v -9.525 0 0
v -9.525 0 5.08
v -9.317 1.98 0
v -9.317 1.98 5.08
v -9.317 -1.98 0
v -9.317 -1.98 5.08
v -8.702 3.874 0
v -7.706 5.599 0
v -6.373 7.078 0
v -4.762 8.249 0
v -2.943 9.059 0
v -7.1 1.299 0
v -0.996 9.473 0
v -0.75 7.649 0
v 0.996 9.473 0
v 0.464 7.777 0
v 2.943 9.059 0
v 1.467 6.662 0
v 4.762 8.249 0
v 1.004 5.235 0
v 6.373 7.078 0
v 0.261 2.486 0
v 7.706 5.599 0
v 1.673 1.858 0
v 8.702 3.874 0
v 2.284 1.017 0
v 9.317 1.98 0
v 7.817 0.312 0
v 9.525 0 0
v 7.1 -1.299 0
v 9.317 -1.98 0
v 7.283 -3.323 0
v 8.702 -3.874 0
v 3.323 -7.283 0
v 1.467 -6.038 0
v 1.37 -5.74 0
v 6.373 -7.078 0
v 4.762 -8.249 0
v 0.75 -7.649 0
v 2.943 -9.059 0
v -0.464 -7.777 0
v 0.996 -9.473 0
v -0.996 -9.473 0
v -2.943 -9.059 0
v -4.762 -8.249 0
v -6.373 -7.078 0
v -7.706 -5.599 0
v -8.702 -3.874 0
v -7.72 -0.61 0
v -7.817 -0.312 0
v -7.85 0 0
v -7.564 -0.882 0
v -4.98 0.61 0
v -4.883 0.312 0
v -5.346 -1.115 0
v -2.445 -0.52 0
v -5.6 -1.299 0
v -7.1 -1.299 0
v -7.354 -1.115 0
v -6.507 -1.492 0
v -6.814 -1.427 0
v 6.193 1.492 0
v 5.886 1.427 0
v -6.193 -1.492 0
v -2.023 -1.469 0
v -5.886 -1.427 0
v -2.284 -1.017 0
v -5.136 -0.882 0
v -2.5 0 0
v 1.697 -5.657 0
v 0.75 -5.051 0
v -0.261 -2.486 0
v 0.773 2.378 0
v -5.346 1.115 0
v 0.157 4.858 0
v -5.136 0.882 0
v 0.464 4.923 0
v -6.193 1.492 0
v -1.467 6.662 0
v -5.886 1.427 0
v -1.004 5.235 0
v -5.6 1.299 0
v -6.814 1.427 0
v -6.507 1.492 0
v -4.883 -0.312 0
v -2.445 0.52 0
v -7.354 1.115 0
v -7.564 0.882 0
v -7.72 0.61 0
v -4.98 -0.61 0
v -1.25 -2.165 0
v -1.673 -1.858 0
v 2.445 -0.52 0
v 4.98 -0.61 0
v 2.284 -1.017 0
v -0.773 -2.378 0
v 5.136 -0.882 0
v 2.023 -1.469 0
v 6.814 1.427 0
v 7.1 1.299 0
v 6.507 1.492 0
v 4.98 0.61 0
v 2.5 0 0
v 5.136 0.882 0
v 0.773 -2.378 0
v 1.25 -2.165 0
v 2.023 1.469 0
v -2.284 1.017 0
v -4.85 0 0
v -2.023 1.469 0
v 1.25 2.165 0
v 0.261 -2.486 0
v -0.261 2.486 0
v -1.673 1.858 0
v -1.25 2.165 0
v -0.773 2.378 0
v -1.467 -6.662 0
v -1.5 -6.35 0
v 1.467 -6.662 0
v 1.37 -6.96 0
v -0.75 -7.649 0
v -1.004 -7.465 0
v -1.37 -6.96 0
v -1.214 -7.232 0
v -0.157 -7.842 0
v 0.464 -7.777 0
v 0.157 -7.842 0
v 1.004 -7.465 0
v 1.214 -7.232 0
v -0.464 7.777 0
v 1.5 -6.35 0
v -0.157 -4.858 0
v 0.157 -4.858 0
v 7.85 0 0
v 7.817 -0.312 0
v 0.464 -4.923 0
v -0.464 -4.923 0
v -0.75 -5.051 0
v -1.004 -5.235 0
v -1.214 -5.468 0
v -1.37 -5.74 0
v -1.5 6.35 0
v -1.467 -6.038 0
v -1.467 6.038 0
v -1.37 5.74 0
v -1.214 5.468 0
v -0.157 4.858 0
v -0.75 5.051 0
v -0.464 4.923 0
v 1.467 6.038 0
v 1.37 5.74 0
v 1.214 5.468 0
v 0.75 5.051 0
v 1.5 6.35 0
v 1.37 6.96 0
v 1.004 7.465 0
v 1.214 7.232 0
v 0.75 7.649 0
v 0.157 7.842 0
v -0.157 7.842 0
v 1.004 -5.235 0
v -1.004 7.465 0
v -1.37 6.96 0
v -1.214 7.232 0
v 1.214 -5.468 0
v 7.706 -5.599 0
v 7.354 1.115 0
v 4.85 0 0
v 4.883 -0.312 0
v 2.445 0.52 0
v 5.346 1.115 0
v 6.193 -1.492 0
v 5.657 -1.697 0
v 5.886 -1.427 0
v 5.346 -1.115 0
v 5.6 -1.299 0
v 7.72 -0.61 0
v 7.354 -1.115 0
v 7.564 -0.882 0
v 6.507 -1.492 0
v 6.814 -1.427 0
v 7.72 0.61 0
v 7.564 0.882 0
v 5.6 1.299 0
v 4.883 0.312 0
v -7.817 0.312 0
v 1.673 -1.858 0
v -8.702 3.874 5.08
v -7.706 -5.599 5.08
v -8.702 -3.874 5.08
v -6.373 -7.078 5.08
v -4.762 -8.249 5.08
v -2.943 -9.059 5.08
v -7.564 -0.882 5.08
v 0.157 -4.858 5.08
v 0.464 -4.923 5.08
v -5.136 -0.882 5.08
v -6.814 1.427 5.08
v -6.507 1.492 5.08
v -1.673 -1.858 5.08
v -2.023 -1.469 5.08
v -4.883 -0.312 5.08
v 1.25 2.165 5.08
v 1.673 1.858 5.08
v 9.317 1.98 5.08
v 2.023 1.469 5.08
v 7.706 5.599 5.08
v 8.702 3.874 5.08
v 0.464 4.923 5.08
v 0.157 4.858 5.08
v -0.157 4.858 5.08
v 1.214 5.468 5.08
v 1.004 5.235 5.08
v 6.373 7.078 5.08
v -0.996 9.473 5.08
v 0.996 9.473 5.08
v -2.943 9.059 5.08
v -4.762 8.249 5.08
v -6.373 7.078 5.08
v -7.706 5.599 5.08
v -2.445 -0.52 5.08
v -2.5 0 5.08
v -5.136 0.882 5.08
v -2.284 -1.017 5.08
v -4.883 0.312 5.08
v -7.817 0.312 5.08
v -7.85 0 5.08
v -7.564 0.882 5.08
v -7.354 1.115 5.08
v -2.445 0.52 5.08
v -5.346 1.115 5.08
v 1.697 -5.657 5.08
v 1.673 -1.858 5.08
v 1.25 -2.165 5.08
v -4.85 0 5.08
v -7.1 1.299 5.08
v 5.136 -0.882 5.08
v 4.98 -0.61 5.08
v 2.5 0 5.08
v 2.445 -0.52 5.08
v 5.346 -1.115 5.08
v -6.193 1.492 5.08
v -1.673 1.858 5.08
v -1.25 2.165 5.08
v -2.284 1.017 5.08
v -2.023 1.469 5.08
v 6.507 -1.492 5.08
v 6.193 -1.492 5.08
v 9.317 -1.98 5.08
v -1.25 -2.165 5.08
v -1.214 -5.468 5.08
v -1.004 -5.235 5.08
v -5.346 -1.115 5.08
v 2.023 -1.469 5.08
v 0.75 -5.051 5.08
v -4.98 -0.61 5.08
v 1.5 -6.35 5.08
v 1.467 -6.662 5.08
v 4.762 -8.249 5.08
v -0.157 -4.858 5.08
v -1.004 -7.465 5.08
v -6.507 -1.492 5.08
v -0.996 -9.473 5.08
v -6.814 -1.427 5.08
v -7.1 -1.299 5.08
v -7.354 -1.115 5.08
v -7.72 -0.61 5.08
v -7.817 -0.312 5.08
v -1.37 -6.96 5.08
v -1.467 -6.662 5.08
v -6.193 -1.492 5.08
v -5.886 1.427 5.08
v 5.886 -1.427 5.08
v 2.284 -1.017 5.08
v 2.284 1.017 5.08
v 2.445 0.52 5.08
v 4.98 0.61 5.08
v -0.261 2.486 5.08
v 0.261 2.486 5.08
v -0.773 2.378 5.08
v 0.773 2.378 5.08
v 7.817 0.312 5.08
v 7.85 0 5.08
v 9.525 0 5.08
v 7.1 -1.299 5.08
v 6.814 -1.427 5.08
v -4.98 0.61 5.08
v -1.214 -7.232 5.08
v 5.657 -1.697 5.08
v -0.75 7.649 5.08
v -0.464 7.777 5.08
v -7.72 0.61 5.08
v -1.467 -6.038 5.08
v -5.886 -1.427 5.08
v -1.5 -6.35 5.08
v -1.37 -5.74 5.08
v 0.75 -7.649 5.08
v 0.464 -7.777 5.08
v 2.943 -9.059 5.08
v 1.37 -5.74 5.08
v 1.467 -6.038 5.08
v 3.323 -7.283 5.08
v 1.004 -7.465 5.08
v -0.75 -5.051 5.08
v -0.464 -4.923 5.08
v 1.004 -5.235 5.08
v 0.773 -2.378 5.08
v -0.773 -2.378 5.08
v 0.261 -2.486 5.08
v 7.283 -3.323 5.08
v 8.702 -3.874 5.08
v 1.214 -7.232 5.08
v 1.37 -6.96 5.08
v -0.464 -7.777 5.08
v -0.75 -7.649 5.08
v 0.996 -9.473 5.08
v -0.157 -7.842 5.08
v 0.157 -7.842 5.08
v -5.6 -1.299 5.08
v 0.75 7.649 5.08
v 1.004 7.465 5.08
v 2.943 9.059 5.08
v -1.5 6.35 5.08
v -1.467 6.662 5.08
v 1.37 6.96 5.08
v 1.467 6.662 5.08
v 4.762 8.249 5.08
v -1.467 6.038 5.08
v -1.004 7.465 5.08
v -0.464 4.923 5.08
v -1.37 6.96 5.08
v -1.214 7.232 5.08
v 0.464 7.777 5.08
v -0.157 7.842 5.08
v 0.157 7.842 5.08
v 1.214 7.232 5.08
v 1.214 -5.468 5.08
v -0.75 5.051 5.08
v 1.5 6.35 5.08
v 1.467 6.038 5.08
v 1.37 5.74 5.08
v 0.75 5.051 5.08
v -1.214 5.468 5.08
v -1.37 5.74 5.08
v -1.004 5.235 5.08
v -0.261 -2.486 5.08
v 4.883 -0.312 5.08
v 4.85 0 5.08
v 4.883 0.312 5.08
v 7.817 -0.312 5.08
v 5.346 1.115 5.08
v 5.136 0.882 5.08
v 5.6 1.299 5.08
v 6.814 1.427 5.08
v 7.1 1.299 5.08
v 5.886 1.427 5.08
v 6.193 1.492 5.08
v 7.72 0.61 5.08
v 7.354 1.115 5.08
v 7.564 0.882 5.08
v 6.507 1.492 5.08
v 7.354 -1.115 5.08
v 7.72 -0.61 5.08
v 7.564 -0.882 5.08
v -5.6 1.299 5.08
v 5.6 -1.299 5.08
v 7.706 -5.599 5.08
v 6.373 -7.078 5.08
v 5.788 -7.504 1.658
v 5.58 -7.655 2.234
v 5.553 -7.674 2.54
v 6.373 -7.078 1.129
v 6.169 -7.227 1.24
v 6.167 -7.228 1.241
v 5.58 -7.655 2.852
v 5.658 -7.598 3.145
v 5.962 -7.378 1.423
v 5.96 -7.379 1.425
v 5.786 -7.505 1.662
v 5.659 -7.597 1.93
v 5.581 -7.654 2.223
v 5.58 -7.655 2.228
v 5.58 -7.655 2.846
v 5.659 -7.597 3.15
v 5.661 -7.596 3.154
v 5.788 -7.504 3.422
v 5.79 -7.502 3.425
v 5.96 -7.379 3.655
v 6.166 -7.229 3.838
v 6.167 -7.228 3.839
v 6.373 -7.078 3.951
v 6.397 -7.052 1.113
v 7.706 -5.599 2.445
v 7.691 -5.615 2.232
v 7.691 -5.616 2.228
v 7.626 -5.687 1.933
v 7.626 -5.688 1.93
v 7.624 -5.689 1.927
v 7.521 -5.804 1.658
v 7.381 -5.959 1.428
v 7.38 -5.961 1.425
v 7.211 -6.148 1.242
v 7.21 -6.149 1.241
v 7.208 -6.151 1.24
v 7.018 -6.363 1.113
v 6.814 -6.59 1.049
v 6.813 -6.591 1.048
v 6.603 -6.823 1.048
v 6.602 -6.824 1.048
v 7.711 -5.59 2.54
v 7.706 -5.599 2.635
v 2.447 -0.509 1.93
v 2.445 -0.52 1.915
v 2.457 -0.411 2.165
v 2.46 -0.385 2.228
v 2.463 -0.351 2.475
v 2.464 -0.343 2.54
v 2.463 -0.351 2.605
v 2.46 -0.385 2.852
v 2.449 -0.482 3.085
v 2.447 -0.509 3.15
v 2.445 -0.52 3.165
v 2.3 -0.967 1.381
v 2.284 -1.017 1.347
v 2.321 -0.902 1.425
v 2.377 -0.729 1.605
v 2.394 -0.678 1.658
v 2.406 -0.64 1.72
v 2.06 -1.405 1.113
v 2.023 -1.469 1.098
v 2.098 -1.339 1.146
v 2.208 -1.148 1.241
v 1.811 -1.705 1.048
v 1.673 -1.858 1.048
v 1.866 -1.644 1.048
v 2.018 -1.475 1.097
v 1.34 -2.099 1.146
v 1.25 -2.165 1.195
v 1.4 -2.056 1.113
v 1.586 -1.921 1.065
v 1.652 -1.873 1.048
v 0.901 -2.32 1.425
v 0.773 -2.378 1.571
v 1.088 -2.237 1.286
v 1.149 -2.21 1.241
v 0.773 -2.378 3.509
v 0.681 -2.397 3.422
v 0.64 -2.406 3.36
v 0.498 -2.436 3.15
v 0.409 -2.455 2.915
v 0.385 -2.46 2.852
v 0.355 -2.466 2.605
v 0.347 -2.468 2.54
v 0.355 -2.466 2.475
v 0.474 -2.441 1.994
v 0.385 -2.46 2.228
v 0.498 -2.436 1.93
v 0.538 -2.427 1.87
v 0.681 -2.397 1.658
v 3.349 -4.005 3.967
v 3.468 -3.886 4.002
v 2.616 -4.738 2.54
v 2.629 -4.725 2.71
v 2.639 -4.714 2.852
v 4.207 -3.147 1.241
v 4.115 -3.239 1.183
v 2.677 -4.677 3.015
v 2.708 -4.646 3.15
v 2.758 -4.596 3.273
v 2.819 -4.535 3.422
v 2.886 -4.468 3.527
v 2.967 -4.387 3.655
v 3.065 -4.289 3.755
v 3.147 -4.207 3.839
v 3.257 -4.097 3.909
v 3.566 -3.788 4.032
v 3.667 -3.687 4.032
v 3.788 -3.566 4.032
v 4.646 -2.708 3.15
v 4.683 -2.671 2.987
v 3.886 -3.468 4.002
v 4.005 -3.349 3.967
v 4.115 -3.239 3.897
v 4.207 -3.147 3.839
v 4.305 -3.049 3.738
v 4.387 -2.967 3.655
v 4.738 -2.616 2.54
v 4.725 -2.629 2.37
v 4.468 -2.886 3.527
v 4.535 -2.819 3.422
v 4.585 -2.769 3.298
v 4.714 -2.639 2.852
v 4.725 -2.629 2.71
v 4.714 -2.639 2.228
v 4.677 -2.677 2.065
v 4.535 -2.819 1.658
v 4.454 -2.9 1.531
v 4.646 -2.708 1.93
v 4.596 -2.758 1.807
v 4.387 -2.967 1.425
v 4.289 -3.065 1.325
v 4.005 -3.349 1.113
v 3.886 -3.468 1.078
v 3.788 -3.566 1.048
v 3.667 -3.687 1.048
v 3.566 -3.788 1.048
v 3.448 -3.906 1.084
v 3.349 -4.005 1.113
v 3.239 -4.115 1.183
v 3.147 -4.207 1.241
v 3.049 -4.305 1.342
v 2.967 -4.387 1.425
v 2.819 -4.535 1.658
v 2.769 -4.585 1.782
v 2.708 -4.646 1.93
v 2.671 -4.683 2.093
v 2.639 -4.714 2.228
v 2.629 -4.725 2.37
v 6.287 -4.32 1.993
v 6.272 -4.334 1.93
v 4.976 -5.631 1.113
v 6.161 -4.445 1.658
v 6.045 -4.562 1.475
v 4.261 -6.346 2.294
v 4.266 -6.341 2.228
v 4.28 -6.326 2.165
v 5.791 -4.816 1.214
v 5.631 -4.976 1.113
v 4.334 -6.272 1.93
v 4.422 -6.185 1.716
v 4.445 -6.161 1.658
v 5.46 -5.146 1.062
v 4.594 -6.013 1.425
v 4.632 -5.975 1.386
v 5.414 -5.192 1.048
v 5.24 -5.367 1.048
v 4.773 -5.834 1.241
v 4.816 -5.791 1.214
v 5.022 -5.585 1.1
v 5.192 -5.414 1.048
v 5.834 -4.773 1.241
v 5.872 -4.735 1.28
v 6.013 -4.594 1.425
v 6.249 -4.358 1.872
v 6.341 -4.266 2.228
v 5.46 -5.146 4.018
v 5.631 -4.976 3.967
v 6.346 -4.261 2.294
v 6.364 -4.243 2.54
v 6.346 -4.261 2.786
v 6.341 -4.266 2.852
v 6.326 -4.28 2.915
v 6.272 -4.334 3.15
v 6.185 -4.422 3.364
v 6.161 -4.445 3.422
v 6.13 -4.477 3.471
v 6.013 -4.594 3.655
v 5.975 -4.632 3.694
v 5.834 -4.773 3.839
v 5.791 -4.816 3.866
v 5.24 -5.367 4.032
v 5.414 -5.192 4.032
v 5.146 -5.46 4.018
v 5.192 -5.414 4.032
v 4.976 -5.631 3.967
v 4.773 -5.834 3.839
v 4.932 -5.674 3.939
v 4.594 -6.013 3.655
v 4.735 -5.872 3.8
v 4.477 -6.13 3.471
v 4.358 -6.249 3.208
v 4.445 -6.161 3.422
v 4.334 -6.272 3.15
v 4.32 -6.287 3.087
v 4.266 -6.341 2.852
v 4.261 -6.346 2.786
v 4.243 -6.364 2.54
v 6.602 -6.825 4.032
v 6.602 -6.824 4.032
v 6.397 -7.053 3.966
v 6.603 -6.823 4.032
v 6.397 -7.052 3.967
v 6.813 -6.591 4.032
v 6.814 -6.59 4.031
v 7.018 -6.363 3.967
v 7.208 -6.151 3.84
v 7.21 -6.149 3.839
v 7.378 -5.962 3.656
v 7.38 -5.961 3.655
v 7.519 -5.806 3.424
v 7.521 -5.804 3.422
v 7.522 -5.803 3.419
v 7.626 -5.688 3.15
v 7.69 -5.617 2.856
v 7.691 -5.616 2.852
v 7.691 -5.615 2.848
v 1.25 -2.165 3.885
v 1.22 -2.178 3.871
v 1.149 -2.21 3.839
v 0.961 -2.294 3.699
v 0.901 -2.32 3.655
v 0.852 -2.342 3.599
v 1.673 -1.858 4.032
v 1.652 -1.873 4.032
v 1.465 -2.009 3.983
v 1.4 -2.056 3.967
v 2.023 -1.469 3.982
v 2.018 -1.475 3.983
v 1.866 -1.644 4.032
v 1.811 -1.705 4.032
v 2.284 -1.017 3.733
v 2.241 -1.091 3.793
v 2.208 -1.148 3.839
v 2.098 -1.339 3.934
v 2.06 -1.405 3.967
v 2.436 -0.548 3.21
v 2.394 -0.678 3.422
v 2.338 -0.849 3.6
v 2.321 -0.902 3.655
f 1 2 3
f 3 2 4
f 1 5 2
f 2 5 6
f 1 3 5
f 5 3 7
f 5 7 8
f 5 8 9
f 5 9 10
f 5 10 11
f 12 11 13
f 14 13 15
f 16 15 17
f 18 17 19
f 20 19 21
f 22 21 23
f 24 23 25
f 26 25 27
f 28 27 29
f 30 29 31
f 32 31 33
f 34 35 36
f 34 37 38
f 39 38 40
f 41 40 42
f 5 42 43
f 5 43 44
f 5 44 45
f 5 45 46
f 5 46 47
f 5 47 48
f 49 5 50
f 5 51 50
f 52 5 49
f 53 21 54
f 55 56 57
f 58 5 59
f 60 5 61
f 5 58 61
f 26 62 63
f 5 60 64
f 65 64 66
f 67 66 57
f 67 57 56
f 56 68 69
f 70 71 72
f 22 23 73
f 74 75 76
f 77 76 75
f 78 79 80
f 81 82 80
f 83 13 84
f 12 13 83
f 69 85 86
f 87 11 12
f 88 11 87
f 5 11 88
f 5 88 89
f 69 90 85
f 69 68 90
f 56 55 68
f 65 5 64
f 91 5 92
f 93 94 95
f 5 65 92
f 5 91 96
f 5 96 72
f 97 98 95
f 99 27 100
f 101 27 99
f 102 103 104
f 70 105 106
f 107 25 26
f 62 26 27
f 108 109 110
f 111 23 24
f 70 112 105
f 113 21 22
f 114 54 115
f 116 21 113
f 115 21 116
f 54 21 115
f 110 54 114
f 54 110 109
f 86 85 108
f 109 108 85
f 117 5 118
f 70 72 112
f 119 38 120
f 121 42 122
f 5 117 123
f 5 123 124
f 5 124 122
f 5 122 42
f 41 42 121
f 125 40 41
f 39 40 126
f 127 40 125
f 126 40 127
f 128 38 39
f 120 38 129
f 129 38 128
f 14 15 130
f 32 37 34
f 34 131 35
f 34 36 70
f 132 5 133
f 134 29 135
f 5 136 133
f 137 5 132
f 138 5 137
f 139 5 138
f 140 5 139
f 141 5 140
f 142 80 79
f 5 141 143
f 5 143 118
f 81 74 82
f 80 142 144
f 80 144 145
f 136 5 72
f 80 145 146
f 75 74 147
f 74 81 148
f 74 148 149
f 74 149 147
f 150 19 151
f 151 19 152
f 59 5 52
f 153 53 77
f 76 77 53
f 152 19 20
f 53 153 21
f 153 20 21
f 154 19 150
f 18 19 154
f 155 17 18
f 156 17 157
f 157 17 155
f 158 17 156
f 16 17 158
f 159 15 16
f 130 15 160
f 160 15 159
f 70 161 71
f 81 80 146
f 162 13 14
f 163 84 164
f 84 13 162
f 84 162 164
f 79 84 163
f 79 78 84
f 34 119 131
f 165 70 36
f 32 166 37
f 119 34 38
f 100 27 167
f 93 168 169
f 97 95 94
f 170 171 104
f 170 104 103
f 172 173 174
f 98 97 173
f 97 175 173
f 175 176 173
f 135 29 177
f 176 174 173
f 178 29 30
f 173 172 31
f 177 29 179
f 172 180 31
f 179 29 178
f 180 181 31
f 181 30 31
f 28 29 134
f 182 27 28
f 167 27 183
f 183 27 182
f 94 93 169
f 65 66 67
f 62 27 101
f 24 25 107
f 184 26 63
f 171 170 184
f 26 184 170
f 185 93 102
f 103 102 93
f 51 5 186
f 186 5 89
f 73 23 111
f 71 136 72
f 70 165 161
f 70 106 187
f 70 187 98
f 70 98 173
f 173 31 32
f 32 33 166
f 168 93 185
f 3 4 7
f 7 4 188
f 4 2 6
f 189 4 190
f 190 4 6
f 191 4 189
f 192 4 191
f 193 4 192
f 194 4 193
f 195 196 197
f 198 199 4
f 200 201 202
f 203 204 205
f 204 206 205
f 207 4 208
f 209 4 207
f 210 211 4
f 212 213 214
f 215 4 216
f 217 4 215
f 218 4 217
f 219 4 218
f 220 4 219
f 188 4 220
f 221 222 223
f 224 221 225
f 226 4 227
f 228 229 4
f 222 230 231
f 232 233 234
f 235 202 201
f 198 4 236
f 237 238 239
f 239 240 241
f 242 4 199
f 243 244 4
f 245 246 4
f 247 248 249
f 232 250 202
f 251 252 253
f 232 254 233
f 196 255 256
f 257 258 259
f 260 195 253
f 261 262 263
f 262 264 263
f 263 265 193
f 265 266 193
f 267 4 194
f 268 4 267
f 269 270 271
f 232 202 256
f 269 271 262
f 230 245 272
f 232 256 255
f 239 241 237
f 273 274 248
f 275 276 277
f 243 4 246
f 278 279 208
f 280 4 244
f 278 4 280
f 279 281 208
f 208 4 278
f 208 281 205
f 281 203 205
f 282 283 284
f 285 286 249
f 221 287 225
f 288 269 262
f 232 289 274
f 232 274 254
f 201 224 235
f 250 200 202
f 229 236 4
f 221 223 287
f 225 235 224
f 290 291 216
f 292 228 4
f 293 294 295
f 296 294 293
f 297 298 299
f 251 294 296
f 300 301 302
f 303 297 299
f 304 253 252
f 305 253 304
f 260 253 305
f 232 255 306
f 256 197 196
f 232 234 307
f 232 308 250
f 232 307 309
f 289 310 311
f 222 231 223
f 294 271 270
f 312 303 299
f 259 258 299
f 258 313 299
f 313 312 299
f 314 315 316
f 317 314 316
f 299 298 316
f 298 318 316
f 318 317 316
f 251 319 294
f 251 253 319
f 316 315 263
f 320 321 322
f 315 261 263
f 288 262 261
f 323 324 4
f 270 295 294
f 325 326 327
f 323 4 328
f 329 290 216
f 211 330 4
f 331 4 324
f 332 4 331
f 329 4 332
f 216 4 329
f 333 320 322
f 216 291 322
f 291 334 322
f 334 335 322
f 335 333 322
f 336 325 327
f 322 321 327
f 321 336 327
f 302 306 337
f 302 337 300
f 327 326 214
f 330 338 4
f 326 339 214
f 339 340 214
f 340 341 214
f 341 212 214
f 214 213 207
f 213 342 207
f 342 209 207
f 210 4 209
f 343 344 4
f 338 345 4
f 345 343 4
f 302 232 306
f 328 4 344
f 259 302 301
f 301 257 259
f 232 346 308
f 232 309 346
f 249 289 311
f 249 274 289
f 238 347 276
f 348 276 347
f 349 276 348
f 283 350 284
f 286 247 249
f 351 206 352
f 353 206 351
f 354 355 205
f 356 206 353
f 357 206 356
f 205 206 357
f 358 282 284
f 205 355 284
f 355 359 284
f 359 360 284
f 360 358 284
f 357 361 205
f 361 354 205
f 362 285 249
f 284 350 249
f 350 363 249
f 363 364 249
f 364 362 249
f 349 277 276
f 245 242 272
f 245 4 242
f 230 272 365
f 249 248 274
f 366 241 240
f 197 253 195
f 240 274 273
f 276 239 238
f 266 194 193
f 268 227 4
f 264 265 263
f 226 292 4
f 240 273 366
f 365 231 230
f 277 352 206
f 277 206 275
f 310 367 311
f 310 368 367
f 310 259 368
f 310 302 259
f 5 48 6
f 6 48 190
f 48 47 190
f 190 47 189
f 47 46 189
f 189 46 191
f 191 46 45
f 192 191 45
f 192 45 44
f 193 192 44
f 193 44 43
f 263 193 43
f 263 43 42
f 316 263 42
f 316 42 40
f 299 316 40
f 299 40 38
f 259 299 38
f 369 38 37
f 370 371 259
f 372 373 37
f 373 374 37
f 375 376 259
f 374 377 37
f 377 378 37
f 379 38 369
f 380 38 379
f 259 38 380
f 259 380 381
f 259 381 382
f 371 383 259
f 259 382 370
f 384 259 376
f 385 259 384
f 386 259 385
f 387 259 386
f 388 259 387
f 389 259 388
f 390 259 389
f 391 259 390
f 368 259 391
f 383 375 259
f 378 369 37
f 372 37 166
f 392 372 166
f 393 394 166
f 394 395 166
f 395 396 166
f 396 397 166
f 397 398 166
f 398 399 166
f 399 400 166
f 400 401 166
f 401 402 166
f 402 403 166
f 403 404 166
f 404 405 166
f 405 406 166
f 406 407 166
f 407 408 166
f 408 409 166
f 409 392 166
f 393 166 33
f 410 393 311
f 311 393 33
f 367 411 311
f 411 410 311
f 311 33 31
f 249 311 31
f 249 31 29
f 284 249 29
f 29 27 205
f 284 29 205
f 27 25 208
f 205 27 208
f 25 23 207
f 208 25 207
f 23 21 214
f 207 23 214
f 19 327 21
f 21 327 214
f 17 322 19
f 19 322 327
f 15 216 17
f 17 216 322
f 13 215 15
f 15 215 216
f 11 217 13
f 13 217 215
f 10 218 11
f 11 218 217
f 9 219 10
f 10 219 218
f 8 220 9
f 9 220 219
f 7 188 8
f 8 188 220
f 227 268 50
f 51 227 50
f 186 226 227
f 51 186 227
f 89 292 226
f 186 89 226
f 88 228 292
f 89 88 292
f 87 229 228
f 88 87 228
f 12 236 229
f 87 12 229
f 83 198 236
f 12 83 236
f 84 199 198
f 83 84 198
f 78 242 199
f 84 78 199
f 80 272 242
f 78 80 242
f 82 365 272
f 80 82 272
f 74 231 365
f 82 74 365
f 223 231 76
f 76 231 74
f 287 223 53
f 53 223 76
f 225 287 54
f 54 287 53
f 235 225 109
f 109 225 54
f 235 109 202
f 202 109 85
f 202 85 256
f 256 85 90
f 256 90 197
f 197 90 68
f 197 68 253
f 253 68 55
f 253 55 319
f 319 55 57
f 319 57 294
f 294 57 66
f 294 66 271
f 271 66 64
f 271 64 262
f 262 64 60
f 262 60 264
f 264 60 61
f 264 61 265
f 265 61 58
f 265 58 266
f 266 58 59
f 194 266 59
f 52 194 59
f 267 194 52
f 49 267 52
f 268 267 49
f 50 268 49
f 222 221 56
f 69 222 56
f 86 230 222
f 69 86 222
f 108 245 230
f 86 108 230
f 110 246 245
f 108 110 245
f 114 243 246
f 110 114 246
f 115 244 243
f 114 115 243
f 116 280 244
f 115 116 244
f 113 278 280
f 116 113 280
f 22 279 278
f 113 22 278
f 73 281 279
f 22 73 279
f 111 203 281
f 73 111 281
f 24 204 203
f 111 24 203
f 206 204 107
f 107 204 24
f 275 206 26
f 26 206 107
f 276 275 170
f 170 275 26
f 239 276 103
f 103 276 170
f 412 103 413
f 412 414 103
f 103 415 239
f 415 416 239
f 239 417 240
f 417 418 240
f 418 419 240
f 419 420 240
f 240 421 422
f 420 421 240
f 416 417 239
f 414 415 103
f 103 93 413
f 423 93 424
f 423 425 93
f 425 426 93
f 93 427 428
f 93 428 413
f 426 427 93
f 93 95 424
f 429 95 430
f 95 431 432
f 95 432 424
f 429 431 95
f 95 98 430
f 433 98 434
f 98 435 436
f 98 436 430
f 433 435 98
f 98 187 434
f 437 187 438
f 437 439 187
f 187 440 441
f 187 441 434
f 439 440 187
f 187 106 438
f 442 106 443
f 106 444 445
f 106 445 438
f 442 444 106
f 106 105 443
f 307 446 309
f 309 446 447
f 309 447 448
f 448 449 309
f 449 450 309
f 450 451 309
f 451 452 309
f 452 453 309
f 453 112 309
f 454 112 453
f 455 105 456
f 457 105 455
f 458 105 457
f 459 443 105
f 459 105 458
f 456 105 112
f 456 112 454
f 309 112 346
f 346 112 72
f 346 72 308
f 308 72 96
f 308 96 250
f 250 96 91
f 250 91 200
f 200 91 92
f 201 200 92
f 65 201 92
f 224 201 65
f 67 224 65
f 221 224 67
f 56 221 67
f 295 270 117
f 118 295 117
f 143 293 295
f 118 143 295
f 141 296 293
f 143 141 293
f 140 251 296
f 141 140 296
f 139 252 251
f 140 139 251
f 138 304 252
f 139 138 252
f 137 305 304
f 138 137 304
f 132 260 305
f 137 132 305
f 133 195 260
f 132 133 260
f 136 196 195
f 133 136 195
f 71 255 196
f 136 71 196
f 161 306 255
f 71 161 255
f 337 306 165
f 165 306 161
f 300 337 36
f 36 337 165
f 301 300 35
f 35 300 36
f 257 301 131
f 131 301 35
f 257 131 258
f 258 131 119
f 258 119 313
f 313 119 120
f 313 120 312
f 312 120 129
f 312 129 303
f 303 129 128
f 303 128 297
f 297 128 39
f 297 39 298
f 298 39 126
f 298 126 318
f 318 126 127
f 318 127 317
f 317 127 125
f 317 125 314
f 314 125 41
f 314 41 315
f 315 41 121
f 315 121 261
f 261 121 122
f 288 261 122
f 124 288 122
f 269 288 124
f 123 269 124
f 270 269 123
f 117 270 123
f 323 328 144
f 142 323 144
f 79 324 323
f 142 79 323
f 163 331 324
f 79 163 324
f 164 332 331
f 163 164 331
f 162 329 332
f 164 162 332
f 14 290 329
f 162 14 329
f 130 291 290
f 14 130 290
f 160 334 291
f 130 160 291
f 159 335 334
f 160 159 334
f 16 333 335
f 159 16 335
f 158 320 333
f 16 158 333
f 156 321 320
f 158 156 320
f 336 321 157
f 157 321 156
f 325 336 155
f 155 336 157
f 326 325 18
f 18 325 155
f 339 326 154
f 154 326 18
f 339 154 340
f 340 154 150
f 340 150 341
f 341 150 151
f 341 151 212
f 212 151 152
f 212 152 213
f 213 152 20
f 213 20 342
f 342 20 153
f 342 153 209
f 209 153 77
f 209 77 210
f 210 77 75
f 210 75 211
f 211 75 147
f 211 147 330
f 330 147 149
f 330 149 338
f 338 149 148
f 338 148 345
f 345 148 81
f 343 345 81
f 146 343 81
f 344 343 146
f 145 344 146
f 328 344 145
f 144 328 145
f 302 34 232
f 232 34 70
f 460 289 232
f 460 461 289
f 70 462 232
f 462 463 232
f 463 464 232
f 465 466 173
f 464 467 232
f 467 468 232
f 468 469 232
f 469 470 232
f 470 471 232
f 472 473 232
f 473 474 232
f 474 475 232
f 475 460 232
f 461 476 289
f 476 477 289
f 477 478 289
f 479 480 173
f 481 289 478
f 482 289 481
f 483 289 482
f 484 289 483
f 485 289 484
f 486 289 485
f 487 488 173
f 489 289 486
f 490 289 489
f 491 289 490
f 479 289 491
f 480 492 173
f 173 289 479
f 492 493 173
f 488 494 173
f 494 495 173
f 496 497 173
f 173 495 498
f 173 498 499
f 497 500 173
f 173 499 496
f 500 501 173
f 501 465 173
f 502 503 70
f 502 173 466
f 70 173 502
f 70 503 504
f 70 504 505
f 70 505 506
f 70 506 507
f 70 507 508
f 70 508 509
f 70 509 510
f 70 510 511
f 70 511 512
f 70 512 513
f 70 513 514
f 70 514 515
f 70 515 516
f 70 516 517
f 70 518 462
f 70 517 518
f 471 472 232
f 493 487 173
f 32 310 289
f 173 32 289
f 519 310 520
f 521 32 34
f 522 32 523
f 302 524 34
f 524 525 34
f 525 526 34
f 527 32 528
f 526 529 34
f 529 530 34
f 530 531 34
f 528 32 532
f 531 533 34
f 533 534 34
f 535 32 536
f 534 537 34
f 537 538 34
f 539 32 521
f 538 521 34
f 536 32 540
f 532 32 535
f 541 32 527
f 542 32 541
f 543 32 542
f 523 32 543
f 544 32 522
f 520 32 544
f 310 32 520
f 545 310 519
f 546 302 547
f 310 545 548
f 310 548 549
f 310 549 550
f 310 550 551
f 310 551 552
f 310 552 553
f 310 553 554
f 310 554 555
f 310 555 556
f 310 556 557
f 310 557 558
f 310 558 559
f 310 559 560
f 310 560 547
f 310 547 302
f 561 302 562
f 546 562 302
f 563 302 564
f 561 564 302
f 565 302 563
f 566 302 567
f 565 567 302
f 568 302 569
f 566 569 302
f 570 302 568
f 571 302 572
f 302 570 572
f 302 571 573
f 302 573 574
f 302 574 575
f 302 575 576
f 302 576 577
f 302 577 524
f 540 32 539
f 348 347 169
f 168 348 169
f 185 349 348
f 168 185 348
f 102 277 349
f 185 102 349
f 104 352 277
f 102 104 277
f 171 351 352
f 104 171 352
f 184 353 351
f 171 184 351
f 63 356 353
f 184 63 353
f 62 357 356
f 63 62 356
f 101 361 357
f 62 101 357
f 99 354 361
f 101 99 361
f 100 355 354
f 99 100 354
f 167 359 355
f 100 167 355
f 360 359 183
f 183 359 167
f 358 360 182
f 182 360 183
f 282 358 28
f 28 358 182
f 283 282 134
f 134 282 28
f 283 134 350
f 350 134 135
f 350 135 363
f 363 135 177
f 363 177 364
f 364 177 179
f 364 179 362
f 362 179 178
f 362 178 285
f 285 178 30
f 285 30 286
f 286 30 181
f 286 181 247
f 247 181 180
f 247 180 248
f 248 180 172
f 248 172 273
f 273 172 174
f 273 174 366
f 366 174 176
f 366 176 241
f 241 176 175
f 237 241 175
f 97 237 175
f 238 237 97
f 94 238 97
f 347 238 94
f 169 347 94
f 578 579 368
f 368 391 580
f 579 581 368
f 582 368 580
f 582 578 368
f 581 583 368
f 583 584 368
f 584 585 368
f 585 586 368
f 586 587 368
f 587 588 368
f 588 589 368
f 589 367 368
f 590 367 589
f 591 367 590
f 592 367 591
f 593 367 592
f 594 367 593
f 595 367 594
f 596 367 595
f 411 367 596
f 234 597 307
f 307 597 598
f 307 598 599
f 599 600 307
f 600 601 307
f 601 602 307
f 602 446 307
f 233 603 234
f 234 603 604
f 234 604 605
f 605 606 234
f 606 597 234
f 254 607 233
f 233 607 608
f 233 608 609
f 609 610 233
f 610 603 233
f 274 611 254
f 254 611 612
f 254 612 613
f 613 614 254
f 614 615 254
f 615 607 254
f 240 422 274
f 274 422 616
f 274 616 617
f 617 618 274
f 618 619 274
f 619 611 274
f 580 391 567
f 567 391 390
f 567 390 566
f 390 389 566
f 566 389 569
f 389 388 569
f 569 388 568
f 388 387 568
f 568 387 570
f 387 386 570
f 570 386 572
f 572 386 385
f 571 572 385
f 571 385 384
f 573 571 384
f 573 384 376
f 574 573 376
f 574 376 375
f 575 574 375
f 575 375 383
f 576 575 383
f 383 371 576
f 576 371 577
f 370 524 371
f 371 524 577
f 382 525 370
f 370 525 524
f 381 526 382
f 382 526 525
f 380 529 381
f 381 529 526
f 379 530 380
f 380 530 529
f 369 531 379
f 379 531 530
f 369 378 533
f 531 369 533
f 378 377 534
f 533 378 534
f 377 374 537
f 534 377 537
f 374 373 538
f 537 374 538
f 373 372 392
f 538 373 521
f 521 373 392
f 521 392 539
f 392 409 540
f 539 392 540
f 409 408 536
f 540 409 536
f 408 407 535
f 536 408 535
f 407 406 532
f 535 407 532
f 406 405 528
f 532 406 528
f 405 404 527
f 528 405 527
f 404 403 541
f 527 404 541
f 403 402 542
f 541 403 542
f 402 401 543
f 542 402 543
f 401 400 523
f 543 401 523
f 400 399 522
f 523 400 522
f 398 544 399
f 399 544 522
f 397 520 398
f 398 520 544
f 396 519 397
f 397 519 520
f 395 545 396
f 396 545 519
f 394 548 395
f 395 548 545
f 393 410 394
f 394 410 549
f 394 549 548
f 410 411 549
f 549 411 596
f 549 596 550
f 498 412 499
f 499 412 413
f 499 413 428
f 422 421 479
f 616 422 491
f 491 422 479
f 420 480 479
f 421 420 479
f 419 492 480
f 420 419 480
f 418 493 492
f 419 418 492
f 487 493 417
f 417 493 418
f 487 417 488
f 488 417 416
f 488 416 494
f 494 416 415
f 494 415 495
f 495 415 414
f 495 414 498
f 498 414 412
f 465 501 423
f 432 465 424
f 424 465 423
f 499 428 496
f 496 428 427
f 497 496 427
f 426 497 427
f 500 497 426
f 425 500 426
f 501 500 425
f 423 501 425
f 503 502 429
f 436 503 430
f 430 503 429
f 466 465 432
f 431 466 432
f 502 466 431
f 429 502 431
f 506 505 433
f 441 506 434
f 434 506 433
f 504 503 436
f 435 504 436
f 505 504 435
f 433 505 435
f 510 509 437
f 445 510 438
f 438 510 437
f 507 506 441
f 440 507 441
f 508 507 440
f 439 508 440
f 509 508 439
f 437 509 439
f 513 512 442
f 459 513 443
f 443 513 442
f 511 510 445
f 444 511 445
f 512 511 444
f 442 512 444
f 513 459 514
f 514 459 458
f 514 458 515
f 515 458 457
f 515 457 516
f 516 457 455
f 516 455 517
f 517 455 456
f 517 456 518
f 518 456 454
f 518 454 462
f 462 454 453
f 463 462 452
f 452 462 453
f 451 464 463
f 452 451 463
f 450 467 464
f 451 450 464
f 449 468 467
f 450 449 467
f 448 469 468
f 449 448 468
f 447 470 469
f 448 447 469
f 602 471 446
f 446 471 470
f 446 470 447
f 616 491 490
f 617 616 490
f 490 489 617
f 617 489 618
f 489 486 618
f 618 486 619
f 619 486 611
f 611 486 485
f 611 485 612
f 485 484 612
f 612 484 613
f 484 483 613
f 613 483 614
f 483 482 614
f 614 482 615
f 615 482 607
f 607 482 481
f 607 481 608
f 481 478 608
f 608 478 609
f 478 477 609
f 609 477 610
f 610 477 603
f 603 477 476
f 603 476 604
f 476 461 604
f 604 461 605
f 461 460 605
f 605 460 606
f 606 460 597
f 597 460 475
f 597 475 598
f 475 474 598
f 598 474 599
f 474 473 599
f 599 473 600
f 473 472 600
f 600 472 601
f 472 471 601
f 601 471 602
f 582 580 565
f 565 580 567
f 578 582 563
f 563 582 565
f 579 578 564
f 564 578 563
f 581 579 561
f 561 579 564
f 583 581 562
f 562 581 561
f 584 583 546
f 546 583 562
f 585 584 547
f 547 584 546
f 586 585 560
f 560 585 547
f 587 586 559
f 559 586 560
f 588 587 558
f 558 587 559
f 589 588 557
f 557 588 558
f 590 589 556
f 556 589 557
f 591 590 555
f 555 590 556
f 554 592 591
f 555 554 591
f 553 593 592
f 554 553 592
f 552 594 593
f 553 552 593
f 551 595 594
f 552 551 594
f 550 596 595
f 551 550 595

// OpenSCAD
/**
 * Universal Mounting Hub - 5mm Printable
 * 
 * Original aluminum is here: https://www.sparkfun.com/products/10006
 * GPL v3 or later
 */
$fn=30;

function inch(i) = i * 25.4;
function mm(m) = m;

DELTA = 0.01;

HUB_DIAMETER   = inch(0.75);
HUB_HEIGHT     = inch(0.20);
SHAFT_DIAMETER = mm(5);
SCREW_DIAMETER = mm(3);
SCREW_OFFSET   = inch(0.25);
NUT_WIDTH      = mm(5.6);
NUT_WIDTH2     = mm(2.3);

module hub_body()
{
    cylinder(
	r = HUB_DIAMETER / 2,
	h = HUB_HEIGHT
    );
}

module hub_shaft()
{
    cylinder(
	r = SHAFT_DIAMETER / 2,
	h = HUB_HEIGHT + DELTA * 2
    );
}

module hub_peg()
{
    cylinder(
	r = SCREW_DIAMETER / 2,
	h = HUB_HEIGHT + DELTA * 2
    );
}

module nut_block()
{
    translate([-NUT_WIDTH/2, - NUT_WIDTH2/2,0]) cube([
	    NUT_WIDTH,
	    NUT_WIDTH2,
	    HUB_HEIGHT+DELTA*2
	]);
}

module fixing_screw()
{
    cylinder(
	r = SCREW_DIAMETER / 2,
	h = HUB_DIAMETER / 2
    );
}

module four()
{
    for(c = [[-1,0],[1,0],[0,1],[0,-1]])
    {
	translate([SCREW_OFFSET*c[0],SCREW_OFFSET*c[1],0]) children();
    }
}

module hub()
{
    difference()
    {
	hub_body();
	translate([0,0,-DELTA]) {
	    hub_shaft();
	    four() hub_peg();
	    rotate([0,0,45])
	    {
		translate([0,-HUB_DIAMETER/3,0]) nut_block();
	    }
	}

	translate([0,0,HUB_HEIGHT/2]) rotate([90,0,45])
	{
	    fixing_screw();
	}
    }
}

hub();
